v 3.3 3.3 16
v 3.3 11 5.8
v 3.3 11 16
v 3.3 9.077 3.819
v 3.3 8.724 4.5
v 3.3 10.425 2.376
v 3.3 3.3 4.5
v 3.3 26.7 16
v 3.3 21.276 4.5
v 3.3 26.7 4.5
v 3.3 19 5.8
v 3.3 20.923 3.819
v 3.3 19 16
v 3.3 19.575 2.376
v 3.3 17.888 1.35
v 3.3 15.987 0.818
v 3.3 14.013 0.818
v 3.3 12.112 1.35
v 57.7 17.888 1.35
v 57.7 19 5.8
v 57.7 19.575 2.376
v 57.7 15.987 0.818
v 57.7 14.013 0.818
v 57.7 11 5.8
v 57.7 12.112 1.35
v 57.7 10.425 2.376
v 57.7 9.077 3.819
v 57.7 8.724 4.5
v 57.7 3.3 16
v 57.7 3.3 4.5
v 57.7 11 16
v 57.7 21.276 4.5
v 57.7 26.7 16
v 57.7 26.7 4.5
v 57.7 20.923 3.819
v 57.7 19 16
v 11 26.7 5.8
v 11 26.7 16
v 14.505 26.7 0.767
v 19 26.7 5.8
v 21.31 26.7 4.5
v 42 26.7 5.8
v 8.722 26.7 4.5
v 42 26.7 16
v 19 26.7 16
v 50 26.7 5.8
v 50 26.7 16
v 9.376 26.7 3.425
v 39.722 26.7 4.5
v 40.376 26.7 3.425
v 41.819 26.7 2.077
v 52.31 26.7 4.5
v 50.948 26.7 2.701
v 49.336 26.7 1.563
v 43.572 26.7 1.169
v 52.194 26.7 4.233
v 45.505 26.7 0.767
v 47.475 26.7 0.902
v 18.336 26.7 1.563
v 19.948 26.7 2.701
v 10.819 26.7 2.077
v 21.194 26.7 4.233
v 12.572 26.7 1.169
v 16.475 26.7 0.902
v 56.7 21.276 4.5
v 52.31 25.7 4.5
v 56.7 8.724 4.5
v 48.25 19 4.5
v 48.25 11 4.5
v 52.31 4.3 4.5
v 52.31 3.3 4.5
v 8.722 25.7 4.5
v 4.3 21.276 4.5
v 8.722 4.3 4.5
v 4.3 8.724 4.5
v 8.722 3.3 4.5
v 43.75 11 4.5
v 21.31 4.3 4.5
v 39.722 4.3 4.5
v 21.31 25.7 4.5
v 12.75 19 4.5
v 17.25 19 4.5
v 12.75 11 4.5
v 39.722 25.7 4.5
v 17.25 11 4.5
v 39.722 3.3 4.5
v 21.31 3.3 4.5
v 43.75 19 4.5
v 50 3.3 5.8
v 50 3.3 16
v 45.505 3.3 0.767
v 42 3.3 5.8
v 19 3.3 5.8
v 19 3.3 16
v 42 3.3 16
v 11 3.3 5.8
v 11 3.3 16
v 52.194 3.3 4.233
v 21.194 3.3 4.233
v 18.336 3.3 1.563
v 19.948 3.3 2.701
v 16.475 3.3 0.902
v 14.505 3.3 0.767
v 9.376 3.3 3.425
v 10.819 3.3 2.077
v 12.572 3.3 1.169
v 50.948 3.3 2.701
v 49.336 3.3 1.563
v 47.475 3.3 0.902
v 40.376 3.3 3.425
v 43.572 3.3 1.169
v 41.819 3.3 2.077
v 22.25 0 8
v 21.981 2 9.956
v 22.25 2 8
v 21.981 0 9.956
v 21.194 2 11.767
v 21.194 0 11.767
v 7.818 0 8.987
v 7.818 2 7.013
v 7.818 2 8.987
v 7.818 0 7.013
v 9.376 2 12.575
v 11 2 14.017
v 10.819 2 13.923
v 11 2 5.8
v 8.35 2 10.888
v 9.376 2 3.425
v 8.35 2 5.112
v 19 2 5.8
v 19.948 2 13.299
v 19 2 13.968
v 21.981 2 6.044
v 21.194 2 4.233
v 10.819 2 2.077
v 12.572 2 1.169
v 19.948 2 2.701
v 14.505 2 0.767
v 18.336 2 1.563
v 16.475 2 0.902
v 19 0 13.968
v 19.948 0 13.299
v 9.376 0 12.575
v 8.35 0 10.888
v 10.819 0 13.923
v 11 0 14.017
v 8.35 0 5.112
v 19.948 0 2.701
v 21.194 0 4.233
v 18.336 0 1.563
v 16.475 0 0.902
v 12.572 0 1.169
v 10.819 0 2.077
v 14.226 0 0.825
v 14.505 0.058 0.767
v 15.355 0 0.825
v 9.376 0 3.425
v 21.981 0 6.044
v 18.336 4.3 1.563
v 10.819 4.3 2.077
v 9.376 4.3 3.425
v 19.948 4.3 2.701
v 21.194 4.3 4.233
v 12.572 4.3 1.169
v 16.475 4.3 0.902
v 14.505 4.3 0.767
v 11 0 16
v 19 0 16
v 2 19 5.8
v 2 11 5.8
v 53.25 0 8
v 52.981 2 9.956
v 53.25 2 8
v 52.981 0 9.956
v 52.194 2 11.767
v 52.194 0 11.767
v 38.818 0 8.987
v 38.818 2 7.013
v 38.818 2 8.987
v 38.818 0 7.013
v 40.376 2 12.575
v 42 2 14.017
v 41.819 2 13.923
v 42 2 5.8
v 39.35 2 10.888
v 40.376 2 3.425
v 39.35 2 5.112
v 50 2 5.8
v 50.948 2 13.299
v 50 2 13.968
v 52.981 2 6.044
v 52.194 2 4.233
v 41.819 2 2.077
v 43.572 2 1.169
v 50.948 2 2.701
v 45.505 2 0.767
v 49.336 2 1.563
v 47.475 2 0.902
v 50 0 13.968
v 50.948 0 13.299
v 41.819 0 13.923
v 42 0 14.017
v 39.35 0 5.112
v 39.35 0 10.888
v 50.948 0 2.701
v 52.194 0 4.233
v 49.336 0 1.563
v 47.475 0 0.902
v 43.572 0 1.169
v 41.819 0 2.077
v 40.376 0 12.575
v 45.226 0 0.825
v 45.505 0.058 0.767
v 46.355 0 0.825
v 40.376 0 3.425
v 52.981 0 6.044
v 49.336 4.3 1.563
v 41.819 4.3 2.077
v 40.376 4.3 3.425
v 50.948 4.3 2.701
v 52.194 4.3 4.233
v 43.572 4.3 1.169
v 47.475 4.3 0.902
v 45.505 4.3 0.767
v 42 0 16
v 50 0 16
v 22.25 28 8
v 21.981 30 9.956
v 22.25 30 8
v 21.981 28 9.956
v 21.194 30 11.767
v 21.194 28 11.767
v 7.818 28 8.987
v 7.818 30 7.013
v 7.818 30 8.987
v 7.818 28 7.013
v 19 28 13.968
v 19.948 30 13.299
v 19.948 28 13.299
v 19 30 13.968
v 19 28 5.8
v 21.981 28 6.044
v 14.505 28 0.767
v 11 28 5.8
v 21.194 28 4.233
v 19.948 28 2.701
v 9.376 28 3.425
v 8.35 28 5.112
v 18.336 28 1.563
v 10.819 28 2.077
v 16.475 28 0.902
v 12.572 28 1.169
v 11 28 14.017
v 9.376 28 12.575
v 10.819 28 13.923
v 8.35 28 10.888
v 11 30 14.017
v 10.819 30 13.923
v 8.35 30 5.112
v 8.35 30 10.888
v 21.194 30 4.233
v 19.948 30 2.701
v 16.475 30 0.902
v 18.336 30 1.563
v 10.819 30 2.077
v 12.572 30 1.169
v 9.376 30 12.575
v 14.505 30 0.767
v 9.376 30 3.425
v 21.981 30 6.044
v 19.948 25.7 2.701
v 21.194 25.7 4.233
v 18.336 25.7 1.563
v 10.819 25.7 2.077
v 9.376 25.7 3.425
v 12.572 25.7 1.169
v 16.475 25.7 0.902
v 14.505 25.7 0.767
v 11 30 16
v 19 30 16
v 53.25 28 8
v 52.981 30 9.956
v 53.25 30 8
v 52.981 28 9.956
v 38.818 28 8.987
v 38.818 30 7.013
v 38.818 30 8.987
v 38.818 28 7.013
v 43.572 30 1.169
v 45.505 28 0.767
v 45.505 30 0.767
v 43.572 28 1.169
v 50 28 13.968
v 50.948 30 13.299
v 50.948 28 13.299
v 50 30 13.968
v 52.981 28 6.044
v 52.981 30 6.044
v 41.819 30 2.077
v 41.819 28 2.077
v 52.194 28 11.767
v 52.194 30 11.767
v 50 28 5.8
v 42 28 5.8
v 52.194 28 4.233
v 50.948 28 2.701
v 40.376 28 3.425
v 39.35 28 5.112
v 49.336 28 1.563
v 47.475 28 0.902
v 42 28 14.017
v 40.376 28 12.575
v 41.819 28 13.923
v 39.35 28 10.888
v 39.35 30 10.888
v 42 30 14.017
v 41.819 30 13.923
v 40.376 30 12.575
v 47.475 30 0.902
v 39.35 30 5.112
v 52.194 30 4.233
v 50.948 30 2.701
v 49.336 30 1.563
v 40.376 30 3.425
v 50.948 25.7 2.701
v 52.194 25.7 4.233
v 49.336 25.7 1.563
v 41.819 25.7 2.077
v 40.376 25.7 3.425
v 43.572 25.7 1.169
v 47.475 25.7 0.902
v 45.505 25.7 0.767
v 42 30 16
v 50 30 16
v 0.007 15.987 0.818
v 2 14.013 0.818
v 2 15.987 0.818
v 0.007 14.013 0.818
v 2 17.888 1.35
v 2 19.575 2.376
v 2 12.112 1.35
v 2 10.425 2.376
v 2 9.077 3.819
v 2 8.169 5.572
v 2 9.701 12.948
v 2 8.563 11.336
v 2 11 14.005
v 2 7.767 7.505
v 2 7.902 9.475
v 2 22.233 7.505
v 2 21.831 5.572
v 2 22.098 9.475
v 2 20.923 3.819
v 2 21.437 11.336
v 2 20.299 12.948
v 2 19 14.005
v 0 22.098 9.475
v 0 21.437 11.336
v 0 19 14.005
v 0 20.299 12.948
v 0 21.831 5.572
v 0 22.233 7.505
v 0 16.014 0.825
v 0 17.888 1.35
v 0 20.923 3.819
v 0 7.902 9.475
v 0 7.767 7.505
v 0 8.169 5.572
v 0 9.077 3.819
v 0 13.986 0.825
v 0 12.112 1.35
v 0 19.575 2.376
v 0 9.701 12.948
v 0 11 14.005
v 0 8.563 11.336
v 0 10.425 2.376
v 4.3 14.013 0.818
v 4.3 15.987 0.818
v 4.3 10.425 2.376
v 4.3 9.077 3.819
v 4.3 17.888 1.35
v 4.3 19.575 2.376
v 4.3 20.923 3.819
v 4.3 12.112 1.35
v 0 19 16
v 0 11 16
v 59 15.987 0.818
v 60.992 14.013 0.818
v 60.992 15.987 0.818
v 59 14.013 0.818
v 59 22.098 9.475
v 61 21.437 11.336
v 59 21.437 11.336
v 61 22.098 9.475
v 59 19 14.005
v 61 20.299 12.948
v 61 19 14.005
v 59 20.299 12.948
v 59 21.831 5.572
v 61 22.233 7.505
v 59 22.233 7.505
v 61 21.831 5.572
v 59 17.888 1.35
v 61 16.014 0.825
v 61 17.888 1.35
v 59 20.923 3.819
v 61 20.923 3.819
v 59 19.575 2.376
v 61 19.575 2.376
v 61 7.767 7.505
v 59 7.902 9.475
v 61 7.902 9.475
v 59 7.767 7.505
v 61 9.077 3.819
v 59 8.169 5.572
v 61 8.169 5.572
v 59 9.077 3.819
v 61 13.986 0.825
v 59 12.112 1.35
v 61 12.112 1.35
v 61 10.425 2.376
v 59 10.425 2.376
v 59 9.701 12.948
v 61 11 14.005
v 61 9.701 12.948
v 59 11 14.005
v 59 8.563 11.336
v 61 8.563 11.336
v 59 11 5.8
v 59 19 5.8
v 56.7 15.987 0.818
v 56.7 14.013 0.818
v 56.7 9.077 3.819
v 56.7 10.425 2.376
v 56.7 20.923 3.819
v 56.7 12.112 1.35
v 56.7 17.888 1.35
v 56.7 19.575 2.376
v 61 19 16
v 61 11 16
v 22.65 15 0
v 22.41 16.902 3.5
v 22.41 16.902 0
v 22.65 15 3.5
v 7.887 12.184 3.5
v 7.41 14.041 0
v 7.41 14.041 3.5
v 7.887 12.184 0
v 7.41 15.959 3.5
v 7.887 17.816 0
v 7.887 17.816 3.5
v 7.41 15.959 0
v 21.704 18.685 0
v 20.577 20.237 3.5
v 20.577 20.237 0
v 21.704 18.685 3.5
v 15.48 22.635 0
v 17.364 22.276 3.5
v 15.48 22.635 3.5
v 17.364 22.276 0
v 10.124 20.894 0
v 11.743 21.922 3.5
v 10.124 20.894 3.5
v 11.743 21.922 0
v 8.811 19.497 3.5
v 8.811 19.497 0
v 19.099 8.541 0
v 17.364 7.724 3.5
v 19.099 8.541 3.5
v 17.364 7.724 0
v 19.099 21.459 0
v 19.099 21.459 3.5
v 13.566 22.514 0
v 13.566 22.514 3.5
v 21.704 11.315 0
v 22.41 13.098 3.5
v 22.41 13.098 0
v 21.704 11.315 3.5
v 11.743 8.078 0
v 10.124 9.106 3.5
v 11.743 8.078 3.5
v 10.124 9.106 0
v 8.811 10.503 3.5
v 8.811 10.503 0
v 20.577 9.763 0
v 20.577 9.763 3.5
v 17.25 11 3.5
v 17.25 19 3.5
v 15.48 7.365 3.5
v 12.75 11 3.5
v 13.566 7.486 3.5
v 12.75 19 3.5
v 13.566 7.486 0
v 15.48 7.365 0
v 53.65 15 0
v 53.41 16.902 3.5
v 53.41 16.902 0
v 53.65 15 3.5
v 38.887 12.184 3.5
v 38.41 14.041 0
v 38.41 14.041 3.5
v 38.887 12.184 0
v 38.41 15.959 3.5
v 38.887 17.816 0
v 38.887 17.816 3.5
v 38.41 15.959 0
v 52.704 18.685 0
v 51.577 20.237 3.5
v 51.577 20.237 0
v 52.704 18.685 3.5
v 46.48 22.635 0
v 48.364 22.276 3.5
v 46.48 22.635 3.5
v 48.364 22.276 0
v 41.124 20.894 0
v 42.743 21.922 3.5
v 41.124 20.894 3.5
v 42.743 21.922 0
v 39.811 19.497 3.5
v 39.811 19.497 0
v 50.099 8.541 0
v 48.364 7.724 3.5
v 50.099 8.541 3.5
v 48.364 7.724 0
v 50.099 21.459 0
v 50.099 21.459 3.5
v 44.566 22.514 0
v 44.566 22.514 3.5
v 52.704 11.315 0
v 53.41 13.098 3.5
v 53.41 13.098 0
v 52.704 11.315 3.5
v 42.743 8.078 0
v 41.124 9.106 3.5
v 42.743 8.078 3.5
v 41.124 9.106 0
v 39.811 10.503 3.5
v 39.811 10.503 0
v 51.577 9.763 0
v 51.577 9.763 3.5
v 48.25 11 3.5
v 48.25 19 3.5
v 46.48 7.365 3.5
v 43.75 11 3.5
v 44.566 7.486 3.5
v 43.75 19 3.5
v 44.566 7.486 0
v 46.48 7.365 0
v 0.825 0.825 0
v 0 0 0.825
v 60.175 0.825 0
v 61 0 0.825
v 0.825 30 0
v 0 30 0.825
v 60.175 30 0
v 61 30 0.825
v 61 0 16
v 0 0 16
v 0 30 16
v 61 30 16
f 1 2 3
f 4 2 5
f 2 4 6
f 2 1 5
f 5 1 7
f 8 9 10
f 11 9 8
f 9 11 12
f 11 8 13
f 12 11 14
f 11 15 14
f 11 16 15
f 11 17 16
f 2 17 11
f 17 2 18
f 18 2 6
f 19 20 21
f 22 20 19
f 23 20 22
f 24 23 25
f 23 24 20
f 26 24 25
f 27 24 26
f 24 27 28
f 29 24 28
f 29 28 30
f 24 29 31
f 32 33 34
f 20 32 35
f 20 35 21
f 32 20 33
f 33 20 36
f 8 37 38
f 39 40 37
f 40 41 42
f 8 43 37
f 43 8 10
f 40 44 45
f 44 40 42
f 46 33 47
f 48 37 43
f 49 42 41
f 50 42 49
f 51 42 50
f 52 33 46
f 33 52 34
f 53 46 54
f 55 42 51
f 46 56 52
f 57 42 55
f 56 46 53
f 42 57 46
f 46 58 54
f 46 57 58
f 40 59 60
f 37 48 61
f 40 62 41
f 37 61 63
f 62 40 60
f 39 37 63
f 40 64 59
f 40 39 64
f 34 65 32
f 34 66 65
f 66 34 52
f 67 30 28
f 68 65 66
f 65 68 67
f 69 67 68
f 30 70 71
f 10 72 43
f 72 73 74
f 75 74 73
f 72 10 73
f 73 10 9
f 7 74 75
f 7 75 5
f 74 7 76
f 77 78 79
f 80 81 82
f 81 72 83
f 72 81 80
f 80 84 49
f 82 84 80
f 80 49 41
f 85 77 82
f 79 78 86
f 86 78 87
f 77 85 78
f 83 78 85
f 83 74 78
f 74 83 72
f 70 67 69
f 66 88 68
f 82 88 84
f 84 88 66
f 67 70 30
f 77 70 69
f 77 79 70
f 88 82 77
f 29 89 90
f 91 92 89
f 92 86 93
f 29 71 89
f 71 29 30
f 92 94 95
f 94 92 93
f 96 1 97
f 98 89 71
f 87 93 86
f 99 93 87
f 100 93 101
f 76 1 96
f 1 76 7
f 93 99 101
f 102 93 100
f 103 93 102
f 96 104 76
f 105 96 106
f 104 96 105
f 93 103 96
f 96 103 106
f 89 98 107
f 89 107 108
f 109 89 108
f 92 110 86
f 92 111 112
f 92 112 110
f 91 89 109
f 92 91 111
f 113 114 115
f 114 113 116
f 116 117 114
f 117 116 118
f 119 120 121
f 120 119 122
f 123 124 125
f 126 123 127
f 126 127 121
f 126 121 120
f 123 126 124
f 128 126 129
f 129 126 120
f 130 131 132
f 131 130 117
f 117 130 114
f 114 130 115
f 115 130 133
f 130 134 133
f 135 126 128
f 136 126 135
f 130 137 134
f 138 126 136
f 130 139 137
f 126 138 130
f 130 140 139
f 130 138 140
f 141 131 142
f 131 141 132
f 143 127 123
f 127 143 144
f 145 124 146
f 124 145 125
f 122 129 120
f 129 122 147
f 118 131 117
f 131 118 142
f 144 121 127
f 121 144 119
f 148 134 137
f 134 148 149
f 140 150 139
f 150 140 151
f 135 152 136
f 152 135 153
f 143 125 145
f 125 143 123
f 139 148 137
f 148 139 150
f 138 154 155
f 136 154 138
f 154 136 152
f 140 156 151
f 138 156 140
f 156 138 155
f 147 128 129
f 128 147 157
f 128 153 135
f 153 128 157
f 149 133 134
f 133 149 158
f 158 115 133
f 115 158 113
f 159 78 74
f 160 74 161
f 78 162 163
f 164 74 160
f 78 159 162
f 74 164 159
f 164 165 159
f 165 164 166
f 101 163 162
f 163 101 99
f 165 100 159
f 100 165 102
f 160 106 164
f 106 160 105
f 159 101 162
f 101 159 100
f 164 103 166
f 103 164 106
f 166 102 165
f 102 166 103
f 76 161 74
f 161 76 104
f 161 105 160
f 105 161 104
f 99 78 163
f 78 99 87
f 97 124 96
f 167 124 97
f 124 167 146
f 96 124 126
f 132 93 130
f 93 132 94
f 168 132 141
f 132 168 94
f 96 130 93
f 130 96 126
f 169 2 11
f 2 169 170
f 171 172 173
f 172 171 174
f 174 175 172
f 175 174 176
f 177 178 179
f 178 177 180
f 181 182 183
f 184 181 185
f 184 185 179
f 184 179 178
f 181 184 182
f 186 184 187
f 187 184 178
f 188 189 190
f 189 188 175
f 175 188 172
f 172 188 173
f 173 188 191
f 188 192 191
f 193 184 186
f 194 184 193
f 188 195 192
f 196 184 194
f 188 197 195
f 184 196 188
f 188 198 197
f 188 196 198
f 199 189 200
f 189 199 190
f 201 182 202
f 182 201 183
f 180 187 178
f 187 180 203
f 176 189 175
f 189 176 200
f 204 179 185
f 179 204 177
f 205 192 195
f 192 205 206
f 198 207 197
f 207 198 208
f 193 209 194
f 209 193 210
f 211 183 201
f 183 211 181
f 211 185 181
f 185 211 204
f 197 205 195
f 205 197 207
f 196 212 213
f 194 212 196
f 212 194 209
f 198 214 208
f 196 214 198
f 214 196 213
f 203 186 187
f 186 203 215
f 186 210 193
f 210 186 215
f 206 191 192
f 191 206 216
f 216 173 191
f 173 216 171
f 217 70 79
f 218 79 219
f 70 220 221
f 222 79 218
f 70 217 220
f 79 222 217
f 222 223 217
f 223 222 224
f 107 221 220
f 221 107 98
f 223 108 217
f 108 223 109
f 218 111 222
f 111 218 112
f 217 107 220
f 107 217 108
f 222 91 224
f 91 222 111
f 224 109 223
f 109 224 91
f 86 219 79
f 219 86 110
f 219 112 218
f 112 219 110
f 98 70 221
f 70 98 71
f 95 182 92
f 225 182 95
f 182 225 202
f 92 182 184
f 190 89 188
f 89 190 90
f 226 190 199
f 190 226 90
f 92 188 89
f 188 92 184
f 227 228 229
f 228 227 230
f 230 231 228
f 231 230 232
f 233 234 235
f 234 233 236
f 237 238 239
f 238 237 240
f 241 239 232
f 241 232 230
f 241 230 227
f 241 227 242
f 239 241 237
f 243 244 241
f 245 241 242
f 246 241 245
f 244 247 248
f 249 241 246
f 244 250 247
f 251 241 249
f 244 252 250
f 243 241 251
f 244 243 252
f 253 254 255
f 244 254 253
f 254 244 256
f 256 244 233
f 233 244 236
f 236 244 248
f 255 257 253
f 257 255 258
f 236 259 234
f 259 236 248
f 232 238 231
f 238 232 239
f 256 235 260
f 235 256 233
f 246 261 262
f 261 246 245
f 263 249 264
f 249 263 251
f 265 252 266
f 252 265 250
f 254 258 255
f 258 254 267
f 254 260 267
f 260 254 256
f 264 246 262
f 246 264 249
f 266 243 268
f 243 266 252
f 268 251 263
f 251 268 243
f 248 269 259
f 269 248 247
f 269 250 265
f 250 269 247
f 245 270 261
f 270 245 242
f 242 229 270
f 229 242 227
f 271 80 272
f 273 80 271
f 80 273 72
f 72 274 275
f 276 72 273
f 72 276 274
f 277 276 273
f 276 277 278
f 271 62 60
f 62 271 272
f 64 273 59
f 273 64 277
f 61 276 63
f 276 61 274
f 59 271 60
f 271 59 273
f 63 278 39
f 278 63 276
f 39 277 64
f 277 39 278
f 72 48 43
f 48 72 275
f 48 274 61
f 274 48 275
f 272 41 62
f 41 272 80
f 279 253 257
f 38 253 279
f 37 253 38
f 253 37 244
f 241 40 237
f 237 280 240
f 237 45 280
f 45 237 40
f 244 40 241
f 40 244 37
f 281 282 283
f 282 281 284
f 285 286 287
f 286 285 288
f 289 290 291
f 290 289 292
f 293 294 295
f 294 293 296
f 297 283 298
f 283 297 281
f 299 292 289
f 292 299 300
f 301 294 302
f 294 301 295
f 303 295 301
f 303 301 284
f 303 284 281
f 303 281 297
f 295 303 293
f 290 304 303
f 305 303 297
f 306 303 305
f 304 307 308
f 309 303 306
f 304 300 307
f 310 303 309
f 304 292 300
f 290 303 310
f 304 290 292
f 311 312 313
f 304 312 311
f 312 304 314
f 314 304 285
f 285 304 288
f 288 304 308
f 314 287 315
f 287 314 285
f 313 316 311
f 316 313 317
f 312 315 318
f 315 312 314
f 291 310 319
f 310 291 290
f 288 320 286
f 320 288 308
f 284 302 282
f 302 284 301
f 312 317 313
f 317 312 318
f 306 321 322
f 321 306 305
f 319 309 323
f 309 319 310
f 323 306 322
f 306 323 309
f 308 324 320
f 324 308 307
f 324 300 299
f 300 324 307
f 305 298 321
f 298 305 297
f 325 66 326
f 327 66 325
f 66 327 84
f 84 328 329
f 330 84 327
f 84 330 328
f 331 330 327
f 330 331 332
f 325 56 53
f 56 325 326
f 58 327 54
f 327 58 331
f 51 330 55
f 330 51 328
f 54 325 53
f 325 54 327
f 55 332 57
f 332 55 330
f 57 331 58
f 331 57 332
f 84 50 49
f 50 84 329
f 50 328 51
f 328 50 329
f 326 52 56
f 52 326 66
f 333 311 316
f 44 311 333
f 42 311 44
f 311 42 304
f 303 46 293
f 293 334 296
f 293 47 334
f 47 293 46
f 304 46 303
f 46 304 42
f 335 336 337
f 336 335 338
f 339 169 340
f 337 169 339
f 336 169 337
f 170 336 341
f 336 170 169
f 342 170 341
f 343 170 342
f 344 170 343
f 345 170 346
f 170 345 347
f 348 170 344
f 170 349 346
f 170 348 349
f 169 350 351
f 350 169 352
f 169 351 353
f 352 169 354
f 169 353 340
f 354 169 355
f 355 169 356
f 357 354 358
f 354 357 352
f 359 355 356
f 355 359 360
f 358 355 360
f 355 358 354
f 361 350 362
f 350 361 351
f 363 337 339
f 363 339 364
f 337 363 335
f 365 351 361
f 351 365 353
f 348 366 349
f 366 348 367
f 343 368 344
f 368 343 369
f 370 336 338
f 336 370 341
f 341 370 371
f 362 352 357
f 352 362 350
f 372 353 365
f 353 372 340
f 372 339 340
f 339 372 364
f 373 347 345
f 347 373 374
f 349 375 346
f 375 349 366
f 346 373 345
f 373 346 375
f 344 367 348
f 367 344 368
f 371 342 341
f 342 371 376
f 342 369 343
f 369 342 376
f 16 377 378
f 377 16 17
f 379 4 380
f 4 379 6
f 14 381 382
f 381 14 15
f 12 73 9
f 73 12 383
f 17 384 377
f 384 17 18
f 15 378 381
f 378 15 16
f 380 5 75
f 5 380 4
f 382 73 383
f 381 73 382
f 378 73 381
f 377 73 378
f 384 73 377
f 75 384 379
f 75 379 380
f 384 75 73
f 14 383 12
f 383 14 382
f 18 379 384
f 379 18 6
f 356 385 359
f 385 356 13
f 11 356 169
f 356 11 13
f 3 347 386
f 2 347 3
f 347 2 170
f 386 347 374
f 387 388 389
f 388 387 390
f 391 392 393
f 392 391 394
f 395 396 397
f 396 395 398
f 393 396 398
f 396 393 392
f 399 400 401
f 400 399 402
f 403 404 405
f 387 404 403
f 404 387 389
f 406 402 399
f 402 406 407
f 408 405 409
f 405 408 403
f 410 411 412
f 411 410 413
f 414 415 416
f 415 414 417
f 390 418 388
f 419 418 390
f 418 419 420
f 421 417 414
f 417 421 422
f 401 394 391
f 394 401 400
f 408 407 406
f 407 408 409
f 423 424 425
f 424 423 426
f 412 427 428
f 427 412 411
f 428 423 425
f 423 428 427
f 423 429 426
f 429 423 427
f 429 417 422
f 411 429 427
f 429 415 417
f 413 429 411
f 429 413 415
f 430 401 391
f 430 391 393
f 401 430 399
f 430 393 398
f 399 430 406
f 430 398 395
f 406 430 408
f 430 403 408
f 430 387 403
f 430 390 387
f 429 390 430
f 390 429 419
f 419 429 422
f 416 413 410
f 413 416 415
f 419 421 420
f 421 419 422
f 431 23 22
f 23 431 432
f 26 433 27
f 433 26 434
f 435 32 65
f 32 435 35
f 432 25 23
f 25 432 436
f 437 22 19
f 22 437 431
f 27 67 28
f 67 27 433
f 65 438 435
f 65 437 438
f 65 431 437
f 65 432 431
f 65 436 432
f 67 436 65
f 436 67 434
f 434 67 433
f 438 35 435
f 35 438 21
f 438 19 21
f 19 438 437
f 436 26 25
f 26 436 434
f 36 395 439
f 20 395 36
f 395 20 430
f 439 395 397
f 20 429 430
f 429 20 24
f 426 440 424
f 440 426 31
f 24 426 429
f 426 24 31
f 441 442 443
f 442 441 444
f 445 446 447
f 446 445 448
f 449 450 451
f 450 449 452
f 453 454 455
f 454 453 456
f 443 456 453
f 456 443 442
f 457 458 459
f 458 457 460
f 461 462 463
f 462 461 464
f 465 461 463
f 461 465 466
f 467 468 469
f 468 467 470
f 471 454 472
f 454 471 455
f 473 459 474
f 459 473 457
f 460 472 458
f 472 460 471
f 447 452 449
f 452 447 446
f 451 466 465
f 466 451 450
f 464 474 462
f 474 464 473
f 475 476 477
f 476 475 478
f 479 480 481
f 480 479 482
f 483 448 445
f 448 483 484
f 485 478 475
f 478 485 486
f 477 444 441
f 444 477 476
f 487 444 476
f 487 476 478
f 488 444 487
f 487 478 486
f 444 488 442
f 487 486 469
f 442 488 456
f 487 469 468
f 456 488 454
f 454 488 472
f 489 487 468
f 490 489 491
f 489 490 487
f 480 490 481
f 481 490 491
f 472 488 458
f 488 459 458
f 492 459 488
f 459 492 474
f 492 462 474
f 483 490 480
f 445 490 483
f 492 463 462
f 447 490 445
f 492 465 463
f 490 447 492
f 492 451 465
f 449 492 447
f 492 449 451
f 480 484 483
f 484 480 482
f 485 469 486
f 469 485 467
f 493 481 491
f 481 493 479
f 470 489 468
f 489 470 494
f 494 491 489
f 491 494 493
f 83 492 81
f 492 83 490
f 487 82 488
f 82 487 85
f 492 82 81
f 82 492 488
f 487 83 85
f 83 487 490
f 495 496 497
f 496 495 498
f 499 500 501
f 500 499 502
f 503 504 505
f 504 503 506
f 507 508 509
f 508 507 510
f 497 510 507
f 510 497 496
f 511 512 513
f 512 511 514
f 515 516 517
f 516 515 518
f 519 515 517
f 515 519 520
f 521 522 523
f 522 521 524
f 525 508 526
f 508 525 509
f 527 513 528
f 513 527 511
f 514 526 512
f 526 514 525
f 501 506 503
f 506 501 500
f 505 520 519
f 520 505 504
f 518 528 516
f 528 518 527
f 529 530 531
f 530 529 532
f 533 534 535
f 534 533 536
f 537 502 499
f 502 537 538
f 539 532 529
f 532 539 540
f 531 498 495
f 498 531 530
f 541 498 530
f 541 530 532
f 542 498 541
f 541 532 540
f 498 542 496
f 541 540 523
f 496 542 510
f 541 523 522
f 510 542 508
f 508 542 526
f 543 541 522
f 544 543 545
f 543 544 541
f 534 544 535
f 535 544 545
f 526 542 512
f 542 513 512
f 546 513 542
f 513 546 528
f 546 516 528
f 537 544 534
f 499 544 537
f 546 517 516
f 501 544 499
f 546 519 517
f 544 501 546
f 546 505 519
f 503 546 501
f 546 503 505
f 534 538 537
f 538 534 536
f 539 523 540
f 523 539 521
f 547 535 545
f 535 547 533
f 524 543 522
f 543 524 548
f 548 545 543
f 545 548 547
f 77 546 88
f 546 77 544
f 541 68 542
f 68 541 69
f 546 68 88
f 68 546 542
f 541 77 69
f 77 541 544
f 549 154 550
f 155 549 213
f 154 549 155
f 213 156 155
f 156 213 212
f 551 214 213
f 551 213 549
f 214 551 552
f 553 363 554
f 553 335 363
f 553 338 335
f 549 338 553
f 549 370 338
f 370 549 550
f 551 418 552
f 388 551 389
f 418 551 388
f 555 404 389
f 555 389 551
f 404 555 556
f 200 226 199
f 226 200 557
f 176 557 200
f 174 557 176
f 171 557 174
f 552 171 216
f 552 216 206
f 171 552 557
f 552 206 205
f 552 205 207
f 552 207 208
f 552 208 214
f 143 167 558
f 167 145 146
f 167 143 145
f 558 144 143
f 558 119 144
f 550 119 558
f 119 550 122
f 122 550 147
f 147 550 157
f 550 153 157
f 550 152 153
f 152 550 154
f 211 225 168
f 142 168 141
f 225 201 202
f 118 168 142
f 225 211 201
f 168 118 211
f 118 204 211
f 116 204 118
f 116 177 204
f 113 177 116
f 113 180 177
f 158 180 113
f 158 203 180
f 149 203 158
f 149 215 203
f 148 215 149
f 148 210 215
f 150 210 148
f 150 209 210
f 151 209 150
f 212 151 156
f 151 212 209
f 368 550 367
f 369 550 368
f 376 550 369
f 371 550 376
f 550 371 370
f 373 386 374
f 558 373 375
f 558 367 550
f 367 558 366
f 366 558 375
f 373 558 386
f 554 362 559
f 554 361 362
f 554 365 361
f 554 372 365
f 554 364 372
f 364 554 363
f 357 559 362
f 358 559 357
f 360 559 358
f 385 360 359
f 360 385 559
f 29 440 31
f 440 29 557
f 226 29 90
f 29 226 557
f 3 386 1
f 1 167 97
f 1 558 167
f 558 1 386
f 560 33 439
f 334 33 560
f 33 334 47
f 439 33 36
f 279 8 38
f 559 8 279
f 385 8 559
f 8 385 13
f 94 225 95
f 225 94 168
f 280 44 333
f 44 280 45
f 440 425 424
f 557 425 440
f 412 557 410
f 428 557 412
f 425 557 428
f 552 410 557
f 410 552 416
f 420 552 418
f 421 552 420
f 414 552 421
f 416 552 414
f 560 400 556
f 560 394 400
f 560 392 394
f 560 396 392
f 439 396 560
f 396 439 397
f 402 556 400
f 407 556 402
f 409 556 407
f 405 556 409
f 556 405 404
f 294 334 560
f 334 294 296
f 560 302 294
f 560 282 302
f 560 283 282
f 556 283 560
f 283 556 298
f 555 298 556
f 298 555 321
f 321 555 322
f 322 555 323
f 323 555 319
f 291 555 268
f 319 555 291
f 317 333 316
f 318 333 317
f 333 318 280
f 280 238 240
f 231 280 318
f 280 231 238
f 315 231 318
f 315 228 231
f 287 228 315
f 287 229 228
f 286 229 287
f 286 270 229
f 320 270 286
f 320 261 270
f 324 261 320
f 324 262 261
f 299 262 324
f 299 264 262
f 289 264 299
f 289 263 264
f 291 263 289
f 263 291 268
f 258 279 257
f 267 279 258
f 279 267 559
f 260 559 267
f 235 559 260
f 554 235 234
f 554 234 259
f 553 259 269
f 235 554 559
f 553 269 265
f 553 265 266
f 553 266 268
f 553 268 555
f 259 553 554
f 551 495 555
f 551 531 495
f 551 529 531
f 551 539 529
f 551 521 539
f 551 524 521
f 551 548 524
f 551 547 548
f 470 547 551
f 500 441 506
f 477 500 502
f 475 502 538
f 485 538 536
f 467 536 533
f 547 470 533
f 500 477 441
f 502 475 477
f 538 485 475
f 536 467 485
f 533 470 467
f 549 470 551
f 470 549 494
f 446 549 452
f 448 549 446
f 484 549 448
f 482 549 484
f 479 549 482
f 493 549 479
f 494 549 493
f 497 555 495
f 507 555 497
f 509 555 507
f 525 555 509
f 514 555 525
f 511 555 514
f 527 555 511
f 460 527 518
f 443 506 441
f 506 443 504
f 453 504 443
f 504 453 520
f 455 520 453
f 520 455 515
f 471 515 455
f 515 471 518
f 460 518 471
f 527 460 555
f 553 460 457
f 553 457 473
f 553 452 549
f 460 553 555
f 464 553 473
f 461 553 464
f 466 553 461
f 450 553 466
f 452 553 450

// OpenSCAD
// file: settings.scad
cube_width=30;
cube_height=16;
cube_thickness=3.3;

cap_width=30;
cap_height=6;
cap_thickness=3.3;

glyph_depth=0.7;
glyph_thickness=1.5;

photo_resitor_hole_r = 2.4;
spring_contact_hole_r = 3.1;
// main file
include <settings.scad>

module radio_cube_2x1(width, height, thickness)
{
    width2 = 2*width + 1;
    //width = 2*width + 1;
    difference()
    {
        cube([width2,width,height]);
        union()
        {
            translate([thickness,thickness,thickness+1.2]) cube([width2-2*thickness,width-2*thickness,height+10]);
            
            //-y
            translate([width/2,2.0,8])rotate([90,0,0])cylinder(r=14.5/2, h=2.6);
            translate([width/2,thickness+1,8])rotate([90,0,0])cylinder(r=14.5/2, h=1);
            translate([width/2-4,-0.2,5.8])cube([8,20,15]);

            translate([3*width/2+1,2.0,8])rotate([90,0,0])cylinder(r=14.5/2, h=2.6);
            translate([3*width/2+1,thickness+1,8])rotate([90,0,0])cylinder(r=14.5/2, h=1);
            translate([3*width/2-3,-0.2,5.8])cube([8,20,15]);
            
            // y
            translate([width/2,width+0.6,8])rotate([90,0,0])cylinder(r=14.5/2, h=2.6);
            translate([width/2,width-thickness,8])rotate([90,0,0])cylinder(r=14.5/2, h=1);
            translate([width/2-4, width-10,5.8])cube([8,20,15]);
    
            translate([3*width/2+1,width+0.6,8])rotate([90,0,0])cylinder(r=14.5/2, h=2.6);
            translate([3*width/2+1,width-thickness,8])rotate([90,0,0])cylinder(r=14.5/2, h=1);
            translate([3*width/2-3, width-10,5.8])cube([8,20,15]);
            
            //-x
            translate([2.0,width/2,8])rotate([0,-90,0])cylinder(r=14.5/2, h=2.6);
            translate([thickness+1,width/2,8])rotate([0,-90,0])cylinder(r=14.5/2, h=1);
            translate([-0.2,width/2-4,5.8])cube([20,8,15]);
            translate([2.0,3*width/2+1,8])rotate([0,-90,0])cylinder(r=14.5/2, h=2.6);
            translate([thickness+1,3*width/2+1,8])rotate([0,-90,0])cylinder(r=14.5/2, h=1);
            translate([-0.2,3*width/2-3,5.8])cube([20,8,15]);
            
            // x
            translate([width2+0.6,width/2,8])rotate([0,-90,0])cylinder(r=14.5/2, h=2.6);
            translate([width2-thickness,width/2,8])rotate([0,-90,0])cylinder(r=14.5/2, h=1);
            translate([width2-10,width/2-4,5.8])cube([20,8,15]);

            translate([width2+0.6,3*width/2+1,8])rotate([0,-90,0])cylinder(r=14.5/2, h=2.6);
            translate([width2-thickness,3*width/2+1,8])rotate([0,-90,0])cylinder(r=14.5/2, h=1);
            translate([width2-10,3*width/2-3,5.8])cube([20,8,15]);

            //bottom
            translate([width/2,width/2,-0.1]) cylinder(r=15.3/2, h=3.6);        
            translate([width/2-2.25,width/2-4,0])cube([4.5,8,15]);
            translate([3*width/2+1,width/2,-0.1]) cylinder(r=15.3/2, h=3.6);        
            translate([3*width/2-2.25+1,width/2-4,0])cube([4.5,8,15]);

            translate([width/2,3*width/2+1,-0.1]) cylinder(r=15.3/2, h=3.6);        
            translate([width/2-2.25,3*width/2-4+1,0])cube([4.5,8,15]);
            translate([3*width/2+1,3*width/2+1,-0.1]) cylinder(r=15.3/2, h=3.6);        
            translate([3*width/2-2.25+1,3*width/2-4+1,0])cube([4.5,8,15]);

            
            //corners
            translate([0,0.25*thickness,0])rotate([45,0,0]) translate([-0.5*width2, -width2, -0.5*height]) cube([2*width2, width2, 2*height]);
            translate([0.25*thickness,0,0]) rotate([0,-45,0]) translate([-width2, -0.5*width2, -0.5*height]) cube([width2, 2*width2, 2*height]);
            translate([width2-0.25*thickness,0,0]) rotate([0,45,0]) translate([0, 0, -0.5*height]) cube([width2, 2*width2, 2*height]);
            translate([0,width2-0.25*thickness,0]) rotate([-45,0,0]) translate([-0.5*width2, 0, -0.5*height]) cube([2*width2, width2, 2*height]);
        }
    }
}

radio_cube_2x1(cube_width, cube_height, cube_thickness);
